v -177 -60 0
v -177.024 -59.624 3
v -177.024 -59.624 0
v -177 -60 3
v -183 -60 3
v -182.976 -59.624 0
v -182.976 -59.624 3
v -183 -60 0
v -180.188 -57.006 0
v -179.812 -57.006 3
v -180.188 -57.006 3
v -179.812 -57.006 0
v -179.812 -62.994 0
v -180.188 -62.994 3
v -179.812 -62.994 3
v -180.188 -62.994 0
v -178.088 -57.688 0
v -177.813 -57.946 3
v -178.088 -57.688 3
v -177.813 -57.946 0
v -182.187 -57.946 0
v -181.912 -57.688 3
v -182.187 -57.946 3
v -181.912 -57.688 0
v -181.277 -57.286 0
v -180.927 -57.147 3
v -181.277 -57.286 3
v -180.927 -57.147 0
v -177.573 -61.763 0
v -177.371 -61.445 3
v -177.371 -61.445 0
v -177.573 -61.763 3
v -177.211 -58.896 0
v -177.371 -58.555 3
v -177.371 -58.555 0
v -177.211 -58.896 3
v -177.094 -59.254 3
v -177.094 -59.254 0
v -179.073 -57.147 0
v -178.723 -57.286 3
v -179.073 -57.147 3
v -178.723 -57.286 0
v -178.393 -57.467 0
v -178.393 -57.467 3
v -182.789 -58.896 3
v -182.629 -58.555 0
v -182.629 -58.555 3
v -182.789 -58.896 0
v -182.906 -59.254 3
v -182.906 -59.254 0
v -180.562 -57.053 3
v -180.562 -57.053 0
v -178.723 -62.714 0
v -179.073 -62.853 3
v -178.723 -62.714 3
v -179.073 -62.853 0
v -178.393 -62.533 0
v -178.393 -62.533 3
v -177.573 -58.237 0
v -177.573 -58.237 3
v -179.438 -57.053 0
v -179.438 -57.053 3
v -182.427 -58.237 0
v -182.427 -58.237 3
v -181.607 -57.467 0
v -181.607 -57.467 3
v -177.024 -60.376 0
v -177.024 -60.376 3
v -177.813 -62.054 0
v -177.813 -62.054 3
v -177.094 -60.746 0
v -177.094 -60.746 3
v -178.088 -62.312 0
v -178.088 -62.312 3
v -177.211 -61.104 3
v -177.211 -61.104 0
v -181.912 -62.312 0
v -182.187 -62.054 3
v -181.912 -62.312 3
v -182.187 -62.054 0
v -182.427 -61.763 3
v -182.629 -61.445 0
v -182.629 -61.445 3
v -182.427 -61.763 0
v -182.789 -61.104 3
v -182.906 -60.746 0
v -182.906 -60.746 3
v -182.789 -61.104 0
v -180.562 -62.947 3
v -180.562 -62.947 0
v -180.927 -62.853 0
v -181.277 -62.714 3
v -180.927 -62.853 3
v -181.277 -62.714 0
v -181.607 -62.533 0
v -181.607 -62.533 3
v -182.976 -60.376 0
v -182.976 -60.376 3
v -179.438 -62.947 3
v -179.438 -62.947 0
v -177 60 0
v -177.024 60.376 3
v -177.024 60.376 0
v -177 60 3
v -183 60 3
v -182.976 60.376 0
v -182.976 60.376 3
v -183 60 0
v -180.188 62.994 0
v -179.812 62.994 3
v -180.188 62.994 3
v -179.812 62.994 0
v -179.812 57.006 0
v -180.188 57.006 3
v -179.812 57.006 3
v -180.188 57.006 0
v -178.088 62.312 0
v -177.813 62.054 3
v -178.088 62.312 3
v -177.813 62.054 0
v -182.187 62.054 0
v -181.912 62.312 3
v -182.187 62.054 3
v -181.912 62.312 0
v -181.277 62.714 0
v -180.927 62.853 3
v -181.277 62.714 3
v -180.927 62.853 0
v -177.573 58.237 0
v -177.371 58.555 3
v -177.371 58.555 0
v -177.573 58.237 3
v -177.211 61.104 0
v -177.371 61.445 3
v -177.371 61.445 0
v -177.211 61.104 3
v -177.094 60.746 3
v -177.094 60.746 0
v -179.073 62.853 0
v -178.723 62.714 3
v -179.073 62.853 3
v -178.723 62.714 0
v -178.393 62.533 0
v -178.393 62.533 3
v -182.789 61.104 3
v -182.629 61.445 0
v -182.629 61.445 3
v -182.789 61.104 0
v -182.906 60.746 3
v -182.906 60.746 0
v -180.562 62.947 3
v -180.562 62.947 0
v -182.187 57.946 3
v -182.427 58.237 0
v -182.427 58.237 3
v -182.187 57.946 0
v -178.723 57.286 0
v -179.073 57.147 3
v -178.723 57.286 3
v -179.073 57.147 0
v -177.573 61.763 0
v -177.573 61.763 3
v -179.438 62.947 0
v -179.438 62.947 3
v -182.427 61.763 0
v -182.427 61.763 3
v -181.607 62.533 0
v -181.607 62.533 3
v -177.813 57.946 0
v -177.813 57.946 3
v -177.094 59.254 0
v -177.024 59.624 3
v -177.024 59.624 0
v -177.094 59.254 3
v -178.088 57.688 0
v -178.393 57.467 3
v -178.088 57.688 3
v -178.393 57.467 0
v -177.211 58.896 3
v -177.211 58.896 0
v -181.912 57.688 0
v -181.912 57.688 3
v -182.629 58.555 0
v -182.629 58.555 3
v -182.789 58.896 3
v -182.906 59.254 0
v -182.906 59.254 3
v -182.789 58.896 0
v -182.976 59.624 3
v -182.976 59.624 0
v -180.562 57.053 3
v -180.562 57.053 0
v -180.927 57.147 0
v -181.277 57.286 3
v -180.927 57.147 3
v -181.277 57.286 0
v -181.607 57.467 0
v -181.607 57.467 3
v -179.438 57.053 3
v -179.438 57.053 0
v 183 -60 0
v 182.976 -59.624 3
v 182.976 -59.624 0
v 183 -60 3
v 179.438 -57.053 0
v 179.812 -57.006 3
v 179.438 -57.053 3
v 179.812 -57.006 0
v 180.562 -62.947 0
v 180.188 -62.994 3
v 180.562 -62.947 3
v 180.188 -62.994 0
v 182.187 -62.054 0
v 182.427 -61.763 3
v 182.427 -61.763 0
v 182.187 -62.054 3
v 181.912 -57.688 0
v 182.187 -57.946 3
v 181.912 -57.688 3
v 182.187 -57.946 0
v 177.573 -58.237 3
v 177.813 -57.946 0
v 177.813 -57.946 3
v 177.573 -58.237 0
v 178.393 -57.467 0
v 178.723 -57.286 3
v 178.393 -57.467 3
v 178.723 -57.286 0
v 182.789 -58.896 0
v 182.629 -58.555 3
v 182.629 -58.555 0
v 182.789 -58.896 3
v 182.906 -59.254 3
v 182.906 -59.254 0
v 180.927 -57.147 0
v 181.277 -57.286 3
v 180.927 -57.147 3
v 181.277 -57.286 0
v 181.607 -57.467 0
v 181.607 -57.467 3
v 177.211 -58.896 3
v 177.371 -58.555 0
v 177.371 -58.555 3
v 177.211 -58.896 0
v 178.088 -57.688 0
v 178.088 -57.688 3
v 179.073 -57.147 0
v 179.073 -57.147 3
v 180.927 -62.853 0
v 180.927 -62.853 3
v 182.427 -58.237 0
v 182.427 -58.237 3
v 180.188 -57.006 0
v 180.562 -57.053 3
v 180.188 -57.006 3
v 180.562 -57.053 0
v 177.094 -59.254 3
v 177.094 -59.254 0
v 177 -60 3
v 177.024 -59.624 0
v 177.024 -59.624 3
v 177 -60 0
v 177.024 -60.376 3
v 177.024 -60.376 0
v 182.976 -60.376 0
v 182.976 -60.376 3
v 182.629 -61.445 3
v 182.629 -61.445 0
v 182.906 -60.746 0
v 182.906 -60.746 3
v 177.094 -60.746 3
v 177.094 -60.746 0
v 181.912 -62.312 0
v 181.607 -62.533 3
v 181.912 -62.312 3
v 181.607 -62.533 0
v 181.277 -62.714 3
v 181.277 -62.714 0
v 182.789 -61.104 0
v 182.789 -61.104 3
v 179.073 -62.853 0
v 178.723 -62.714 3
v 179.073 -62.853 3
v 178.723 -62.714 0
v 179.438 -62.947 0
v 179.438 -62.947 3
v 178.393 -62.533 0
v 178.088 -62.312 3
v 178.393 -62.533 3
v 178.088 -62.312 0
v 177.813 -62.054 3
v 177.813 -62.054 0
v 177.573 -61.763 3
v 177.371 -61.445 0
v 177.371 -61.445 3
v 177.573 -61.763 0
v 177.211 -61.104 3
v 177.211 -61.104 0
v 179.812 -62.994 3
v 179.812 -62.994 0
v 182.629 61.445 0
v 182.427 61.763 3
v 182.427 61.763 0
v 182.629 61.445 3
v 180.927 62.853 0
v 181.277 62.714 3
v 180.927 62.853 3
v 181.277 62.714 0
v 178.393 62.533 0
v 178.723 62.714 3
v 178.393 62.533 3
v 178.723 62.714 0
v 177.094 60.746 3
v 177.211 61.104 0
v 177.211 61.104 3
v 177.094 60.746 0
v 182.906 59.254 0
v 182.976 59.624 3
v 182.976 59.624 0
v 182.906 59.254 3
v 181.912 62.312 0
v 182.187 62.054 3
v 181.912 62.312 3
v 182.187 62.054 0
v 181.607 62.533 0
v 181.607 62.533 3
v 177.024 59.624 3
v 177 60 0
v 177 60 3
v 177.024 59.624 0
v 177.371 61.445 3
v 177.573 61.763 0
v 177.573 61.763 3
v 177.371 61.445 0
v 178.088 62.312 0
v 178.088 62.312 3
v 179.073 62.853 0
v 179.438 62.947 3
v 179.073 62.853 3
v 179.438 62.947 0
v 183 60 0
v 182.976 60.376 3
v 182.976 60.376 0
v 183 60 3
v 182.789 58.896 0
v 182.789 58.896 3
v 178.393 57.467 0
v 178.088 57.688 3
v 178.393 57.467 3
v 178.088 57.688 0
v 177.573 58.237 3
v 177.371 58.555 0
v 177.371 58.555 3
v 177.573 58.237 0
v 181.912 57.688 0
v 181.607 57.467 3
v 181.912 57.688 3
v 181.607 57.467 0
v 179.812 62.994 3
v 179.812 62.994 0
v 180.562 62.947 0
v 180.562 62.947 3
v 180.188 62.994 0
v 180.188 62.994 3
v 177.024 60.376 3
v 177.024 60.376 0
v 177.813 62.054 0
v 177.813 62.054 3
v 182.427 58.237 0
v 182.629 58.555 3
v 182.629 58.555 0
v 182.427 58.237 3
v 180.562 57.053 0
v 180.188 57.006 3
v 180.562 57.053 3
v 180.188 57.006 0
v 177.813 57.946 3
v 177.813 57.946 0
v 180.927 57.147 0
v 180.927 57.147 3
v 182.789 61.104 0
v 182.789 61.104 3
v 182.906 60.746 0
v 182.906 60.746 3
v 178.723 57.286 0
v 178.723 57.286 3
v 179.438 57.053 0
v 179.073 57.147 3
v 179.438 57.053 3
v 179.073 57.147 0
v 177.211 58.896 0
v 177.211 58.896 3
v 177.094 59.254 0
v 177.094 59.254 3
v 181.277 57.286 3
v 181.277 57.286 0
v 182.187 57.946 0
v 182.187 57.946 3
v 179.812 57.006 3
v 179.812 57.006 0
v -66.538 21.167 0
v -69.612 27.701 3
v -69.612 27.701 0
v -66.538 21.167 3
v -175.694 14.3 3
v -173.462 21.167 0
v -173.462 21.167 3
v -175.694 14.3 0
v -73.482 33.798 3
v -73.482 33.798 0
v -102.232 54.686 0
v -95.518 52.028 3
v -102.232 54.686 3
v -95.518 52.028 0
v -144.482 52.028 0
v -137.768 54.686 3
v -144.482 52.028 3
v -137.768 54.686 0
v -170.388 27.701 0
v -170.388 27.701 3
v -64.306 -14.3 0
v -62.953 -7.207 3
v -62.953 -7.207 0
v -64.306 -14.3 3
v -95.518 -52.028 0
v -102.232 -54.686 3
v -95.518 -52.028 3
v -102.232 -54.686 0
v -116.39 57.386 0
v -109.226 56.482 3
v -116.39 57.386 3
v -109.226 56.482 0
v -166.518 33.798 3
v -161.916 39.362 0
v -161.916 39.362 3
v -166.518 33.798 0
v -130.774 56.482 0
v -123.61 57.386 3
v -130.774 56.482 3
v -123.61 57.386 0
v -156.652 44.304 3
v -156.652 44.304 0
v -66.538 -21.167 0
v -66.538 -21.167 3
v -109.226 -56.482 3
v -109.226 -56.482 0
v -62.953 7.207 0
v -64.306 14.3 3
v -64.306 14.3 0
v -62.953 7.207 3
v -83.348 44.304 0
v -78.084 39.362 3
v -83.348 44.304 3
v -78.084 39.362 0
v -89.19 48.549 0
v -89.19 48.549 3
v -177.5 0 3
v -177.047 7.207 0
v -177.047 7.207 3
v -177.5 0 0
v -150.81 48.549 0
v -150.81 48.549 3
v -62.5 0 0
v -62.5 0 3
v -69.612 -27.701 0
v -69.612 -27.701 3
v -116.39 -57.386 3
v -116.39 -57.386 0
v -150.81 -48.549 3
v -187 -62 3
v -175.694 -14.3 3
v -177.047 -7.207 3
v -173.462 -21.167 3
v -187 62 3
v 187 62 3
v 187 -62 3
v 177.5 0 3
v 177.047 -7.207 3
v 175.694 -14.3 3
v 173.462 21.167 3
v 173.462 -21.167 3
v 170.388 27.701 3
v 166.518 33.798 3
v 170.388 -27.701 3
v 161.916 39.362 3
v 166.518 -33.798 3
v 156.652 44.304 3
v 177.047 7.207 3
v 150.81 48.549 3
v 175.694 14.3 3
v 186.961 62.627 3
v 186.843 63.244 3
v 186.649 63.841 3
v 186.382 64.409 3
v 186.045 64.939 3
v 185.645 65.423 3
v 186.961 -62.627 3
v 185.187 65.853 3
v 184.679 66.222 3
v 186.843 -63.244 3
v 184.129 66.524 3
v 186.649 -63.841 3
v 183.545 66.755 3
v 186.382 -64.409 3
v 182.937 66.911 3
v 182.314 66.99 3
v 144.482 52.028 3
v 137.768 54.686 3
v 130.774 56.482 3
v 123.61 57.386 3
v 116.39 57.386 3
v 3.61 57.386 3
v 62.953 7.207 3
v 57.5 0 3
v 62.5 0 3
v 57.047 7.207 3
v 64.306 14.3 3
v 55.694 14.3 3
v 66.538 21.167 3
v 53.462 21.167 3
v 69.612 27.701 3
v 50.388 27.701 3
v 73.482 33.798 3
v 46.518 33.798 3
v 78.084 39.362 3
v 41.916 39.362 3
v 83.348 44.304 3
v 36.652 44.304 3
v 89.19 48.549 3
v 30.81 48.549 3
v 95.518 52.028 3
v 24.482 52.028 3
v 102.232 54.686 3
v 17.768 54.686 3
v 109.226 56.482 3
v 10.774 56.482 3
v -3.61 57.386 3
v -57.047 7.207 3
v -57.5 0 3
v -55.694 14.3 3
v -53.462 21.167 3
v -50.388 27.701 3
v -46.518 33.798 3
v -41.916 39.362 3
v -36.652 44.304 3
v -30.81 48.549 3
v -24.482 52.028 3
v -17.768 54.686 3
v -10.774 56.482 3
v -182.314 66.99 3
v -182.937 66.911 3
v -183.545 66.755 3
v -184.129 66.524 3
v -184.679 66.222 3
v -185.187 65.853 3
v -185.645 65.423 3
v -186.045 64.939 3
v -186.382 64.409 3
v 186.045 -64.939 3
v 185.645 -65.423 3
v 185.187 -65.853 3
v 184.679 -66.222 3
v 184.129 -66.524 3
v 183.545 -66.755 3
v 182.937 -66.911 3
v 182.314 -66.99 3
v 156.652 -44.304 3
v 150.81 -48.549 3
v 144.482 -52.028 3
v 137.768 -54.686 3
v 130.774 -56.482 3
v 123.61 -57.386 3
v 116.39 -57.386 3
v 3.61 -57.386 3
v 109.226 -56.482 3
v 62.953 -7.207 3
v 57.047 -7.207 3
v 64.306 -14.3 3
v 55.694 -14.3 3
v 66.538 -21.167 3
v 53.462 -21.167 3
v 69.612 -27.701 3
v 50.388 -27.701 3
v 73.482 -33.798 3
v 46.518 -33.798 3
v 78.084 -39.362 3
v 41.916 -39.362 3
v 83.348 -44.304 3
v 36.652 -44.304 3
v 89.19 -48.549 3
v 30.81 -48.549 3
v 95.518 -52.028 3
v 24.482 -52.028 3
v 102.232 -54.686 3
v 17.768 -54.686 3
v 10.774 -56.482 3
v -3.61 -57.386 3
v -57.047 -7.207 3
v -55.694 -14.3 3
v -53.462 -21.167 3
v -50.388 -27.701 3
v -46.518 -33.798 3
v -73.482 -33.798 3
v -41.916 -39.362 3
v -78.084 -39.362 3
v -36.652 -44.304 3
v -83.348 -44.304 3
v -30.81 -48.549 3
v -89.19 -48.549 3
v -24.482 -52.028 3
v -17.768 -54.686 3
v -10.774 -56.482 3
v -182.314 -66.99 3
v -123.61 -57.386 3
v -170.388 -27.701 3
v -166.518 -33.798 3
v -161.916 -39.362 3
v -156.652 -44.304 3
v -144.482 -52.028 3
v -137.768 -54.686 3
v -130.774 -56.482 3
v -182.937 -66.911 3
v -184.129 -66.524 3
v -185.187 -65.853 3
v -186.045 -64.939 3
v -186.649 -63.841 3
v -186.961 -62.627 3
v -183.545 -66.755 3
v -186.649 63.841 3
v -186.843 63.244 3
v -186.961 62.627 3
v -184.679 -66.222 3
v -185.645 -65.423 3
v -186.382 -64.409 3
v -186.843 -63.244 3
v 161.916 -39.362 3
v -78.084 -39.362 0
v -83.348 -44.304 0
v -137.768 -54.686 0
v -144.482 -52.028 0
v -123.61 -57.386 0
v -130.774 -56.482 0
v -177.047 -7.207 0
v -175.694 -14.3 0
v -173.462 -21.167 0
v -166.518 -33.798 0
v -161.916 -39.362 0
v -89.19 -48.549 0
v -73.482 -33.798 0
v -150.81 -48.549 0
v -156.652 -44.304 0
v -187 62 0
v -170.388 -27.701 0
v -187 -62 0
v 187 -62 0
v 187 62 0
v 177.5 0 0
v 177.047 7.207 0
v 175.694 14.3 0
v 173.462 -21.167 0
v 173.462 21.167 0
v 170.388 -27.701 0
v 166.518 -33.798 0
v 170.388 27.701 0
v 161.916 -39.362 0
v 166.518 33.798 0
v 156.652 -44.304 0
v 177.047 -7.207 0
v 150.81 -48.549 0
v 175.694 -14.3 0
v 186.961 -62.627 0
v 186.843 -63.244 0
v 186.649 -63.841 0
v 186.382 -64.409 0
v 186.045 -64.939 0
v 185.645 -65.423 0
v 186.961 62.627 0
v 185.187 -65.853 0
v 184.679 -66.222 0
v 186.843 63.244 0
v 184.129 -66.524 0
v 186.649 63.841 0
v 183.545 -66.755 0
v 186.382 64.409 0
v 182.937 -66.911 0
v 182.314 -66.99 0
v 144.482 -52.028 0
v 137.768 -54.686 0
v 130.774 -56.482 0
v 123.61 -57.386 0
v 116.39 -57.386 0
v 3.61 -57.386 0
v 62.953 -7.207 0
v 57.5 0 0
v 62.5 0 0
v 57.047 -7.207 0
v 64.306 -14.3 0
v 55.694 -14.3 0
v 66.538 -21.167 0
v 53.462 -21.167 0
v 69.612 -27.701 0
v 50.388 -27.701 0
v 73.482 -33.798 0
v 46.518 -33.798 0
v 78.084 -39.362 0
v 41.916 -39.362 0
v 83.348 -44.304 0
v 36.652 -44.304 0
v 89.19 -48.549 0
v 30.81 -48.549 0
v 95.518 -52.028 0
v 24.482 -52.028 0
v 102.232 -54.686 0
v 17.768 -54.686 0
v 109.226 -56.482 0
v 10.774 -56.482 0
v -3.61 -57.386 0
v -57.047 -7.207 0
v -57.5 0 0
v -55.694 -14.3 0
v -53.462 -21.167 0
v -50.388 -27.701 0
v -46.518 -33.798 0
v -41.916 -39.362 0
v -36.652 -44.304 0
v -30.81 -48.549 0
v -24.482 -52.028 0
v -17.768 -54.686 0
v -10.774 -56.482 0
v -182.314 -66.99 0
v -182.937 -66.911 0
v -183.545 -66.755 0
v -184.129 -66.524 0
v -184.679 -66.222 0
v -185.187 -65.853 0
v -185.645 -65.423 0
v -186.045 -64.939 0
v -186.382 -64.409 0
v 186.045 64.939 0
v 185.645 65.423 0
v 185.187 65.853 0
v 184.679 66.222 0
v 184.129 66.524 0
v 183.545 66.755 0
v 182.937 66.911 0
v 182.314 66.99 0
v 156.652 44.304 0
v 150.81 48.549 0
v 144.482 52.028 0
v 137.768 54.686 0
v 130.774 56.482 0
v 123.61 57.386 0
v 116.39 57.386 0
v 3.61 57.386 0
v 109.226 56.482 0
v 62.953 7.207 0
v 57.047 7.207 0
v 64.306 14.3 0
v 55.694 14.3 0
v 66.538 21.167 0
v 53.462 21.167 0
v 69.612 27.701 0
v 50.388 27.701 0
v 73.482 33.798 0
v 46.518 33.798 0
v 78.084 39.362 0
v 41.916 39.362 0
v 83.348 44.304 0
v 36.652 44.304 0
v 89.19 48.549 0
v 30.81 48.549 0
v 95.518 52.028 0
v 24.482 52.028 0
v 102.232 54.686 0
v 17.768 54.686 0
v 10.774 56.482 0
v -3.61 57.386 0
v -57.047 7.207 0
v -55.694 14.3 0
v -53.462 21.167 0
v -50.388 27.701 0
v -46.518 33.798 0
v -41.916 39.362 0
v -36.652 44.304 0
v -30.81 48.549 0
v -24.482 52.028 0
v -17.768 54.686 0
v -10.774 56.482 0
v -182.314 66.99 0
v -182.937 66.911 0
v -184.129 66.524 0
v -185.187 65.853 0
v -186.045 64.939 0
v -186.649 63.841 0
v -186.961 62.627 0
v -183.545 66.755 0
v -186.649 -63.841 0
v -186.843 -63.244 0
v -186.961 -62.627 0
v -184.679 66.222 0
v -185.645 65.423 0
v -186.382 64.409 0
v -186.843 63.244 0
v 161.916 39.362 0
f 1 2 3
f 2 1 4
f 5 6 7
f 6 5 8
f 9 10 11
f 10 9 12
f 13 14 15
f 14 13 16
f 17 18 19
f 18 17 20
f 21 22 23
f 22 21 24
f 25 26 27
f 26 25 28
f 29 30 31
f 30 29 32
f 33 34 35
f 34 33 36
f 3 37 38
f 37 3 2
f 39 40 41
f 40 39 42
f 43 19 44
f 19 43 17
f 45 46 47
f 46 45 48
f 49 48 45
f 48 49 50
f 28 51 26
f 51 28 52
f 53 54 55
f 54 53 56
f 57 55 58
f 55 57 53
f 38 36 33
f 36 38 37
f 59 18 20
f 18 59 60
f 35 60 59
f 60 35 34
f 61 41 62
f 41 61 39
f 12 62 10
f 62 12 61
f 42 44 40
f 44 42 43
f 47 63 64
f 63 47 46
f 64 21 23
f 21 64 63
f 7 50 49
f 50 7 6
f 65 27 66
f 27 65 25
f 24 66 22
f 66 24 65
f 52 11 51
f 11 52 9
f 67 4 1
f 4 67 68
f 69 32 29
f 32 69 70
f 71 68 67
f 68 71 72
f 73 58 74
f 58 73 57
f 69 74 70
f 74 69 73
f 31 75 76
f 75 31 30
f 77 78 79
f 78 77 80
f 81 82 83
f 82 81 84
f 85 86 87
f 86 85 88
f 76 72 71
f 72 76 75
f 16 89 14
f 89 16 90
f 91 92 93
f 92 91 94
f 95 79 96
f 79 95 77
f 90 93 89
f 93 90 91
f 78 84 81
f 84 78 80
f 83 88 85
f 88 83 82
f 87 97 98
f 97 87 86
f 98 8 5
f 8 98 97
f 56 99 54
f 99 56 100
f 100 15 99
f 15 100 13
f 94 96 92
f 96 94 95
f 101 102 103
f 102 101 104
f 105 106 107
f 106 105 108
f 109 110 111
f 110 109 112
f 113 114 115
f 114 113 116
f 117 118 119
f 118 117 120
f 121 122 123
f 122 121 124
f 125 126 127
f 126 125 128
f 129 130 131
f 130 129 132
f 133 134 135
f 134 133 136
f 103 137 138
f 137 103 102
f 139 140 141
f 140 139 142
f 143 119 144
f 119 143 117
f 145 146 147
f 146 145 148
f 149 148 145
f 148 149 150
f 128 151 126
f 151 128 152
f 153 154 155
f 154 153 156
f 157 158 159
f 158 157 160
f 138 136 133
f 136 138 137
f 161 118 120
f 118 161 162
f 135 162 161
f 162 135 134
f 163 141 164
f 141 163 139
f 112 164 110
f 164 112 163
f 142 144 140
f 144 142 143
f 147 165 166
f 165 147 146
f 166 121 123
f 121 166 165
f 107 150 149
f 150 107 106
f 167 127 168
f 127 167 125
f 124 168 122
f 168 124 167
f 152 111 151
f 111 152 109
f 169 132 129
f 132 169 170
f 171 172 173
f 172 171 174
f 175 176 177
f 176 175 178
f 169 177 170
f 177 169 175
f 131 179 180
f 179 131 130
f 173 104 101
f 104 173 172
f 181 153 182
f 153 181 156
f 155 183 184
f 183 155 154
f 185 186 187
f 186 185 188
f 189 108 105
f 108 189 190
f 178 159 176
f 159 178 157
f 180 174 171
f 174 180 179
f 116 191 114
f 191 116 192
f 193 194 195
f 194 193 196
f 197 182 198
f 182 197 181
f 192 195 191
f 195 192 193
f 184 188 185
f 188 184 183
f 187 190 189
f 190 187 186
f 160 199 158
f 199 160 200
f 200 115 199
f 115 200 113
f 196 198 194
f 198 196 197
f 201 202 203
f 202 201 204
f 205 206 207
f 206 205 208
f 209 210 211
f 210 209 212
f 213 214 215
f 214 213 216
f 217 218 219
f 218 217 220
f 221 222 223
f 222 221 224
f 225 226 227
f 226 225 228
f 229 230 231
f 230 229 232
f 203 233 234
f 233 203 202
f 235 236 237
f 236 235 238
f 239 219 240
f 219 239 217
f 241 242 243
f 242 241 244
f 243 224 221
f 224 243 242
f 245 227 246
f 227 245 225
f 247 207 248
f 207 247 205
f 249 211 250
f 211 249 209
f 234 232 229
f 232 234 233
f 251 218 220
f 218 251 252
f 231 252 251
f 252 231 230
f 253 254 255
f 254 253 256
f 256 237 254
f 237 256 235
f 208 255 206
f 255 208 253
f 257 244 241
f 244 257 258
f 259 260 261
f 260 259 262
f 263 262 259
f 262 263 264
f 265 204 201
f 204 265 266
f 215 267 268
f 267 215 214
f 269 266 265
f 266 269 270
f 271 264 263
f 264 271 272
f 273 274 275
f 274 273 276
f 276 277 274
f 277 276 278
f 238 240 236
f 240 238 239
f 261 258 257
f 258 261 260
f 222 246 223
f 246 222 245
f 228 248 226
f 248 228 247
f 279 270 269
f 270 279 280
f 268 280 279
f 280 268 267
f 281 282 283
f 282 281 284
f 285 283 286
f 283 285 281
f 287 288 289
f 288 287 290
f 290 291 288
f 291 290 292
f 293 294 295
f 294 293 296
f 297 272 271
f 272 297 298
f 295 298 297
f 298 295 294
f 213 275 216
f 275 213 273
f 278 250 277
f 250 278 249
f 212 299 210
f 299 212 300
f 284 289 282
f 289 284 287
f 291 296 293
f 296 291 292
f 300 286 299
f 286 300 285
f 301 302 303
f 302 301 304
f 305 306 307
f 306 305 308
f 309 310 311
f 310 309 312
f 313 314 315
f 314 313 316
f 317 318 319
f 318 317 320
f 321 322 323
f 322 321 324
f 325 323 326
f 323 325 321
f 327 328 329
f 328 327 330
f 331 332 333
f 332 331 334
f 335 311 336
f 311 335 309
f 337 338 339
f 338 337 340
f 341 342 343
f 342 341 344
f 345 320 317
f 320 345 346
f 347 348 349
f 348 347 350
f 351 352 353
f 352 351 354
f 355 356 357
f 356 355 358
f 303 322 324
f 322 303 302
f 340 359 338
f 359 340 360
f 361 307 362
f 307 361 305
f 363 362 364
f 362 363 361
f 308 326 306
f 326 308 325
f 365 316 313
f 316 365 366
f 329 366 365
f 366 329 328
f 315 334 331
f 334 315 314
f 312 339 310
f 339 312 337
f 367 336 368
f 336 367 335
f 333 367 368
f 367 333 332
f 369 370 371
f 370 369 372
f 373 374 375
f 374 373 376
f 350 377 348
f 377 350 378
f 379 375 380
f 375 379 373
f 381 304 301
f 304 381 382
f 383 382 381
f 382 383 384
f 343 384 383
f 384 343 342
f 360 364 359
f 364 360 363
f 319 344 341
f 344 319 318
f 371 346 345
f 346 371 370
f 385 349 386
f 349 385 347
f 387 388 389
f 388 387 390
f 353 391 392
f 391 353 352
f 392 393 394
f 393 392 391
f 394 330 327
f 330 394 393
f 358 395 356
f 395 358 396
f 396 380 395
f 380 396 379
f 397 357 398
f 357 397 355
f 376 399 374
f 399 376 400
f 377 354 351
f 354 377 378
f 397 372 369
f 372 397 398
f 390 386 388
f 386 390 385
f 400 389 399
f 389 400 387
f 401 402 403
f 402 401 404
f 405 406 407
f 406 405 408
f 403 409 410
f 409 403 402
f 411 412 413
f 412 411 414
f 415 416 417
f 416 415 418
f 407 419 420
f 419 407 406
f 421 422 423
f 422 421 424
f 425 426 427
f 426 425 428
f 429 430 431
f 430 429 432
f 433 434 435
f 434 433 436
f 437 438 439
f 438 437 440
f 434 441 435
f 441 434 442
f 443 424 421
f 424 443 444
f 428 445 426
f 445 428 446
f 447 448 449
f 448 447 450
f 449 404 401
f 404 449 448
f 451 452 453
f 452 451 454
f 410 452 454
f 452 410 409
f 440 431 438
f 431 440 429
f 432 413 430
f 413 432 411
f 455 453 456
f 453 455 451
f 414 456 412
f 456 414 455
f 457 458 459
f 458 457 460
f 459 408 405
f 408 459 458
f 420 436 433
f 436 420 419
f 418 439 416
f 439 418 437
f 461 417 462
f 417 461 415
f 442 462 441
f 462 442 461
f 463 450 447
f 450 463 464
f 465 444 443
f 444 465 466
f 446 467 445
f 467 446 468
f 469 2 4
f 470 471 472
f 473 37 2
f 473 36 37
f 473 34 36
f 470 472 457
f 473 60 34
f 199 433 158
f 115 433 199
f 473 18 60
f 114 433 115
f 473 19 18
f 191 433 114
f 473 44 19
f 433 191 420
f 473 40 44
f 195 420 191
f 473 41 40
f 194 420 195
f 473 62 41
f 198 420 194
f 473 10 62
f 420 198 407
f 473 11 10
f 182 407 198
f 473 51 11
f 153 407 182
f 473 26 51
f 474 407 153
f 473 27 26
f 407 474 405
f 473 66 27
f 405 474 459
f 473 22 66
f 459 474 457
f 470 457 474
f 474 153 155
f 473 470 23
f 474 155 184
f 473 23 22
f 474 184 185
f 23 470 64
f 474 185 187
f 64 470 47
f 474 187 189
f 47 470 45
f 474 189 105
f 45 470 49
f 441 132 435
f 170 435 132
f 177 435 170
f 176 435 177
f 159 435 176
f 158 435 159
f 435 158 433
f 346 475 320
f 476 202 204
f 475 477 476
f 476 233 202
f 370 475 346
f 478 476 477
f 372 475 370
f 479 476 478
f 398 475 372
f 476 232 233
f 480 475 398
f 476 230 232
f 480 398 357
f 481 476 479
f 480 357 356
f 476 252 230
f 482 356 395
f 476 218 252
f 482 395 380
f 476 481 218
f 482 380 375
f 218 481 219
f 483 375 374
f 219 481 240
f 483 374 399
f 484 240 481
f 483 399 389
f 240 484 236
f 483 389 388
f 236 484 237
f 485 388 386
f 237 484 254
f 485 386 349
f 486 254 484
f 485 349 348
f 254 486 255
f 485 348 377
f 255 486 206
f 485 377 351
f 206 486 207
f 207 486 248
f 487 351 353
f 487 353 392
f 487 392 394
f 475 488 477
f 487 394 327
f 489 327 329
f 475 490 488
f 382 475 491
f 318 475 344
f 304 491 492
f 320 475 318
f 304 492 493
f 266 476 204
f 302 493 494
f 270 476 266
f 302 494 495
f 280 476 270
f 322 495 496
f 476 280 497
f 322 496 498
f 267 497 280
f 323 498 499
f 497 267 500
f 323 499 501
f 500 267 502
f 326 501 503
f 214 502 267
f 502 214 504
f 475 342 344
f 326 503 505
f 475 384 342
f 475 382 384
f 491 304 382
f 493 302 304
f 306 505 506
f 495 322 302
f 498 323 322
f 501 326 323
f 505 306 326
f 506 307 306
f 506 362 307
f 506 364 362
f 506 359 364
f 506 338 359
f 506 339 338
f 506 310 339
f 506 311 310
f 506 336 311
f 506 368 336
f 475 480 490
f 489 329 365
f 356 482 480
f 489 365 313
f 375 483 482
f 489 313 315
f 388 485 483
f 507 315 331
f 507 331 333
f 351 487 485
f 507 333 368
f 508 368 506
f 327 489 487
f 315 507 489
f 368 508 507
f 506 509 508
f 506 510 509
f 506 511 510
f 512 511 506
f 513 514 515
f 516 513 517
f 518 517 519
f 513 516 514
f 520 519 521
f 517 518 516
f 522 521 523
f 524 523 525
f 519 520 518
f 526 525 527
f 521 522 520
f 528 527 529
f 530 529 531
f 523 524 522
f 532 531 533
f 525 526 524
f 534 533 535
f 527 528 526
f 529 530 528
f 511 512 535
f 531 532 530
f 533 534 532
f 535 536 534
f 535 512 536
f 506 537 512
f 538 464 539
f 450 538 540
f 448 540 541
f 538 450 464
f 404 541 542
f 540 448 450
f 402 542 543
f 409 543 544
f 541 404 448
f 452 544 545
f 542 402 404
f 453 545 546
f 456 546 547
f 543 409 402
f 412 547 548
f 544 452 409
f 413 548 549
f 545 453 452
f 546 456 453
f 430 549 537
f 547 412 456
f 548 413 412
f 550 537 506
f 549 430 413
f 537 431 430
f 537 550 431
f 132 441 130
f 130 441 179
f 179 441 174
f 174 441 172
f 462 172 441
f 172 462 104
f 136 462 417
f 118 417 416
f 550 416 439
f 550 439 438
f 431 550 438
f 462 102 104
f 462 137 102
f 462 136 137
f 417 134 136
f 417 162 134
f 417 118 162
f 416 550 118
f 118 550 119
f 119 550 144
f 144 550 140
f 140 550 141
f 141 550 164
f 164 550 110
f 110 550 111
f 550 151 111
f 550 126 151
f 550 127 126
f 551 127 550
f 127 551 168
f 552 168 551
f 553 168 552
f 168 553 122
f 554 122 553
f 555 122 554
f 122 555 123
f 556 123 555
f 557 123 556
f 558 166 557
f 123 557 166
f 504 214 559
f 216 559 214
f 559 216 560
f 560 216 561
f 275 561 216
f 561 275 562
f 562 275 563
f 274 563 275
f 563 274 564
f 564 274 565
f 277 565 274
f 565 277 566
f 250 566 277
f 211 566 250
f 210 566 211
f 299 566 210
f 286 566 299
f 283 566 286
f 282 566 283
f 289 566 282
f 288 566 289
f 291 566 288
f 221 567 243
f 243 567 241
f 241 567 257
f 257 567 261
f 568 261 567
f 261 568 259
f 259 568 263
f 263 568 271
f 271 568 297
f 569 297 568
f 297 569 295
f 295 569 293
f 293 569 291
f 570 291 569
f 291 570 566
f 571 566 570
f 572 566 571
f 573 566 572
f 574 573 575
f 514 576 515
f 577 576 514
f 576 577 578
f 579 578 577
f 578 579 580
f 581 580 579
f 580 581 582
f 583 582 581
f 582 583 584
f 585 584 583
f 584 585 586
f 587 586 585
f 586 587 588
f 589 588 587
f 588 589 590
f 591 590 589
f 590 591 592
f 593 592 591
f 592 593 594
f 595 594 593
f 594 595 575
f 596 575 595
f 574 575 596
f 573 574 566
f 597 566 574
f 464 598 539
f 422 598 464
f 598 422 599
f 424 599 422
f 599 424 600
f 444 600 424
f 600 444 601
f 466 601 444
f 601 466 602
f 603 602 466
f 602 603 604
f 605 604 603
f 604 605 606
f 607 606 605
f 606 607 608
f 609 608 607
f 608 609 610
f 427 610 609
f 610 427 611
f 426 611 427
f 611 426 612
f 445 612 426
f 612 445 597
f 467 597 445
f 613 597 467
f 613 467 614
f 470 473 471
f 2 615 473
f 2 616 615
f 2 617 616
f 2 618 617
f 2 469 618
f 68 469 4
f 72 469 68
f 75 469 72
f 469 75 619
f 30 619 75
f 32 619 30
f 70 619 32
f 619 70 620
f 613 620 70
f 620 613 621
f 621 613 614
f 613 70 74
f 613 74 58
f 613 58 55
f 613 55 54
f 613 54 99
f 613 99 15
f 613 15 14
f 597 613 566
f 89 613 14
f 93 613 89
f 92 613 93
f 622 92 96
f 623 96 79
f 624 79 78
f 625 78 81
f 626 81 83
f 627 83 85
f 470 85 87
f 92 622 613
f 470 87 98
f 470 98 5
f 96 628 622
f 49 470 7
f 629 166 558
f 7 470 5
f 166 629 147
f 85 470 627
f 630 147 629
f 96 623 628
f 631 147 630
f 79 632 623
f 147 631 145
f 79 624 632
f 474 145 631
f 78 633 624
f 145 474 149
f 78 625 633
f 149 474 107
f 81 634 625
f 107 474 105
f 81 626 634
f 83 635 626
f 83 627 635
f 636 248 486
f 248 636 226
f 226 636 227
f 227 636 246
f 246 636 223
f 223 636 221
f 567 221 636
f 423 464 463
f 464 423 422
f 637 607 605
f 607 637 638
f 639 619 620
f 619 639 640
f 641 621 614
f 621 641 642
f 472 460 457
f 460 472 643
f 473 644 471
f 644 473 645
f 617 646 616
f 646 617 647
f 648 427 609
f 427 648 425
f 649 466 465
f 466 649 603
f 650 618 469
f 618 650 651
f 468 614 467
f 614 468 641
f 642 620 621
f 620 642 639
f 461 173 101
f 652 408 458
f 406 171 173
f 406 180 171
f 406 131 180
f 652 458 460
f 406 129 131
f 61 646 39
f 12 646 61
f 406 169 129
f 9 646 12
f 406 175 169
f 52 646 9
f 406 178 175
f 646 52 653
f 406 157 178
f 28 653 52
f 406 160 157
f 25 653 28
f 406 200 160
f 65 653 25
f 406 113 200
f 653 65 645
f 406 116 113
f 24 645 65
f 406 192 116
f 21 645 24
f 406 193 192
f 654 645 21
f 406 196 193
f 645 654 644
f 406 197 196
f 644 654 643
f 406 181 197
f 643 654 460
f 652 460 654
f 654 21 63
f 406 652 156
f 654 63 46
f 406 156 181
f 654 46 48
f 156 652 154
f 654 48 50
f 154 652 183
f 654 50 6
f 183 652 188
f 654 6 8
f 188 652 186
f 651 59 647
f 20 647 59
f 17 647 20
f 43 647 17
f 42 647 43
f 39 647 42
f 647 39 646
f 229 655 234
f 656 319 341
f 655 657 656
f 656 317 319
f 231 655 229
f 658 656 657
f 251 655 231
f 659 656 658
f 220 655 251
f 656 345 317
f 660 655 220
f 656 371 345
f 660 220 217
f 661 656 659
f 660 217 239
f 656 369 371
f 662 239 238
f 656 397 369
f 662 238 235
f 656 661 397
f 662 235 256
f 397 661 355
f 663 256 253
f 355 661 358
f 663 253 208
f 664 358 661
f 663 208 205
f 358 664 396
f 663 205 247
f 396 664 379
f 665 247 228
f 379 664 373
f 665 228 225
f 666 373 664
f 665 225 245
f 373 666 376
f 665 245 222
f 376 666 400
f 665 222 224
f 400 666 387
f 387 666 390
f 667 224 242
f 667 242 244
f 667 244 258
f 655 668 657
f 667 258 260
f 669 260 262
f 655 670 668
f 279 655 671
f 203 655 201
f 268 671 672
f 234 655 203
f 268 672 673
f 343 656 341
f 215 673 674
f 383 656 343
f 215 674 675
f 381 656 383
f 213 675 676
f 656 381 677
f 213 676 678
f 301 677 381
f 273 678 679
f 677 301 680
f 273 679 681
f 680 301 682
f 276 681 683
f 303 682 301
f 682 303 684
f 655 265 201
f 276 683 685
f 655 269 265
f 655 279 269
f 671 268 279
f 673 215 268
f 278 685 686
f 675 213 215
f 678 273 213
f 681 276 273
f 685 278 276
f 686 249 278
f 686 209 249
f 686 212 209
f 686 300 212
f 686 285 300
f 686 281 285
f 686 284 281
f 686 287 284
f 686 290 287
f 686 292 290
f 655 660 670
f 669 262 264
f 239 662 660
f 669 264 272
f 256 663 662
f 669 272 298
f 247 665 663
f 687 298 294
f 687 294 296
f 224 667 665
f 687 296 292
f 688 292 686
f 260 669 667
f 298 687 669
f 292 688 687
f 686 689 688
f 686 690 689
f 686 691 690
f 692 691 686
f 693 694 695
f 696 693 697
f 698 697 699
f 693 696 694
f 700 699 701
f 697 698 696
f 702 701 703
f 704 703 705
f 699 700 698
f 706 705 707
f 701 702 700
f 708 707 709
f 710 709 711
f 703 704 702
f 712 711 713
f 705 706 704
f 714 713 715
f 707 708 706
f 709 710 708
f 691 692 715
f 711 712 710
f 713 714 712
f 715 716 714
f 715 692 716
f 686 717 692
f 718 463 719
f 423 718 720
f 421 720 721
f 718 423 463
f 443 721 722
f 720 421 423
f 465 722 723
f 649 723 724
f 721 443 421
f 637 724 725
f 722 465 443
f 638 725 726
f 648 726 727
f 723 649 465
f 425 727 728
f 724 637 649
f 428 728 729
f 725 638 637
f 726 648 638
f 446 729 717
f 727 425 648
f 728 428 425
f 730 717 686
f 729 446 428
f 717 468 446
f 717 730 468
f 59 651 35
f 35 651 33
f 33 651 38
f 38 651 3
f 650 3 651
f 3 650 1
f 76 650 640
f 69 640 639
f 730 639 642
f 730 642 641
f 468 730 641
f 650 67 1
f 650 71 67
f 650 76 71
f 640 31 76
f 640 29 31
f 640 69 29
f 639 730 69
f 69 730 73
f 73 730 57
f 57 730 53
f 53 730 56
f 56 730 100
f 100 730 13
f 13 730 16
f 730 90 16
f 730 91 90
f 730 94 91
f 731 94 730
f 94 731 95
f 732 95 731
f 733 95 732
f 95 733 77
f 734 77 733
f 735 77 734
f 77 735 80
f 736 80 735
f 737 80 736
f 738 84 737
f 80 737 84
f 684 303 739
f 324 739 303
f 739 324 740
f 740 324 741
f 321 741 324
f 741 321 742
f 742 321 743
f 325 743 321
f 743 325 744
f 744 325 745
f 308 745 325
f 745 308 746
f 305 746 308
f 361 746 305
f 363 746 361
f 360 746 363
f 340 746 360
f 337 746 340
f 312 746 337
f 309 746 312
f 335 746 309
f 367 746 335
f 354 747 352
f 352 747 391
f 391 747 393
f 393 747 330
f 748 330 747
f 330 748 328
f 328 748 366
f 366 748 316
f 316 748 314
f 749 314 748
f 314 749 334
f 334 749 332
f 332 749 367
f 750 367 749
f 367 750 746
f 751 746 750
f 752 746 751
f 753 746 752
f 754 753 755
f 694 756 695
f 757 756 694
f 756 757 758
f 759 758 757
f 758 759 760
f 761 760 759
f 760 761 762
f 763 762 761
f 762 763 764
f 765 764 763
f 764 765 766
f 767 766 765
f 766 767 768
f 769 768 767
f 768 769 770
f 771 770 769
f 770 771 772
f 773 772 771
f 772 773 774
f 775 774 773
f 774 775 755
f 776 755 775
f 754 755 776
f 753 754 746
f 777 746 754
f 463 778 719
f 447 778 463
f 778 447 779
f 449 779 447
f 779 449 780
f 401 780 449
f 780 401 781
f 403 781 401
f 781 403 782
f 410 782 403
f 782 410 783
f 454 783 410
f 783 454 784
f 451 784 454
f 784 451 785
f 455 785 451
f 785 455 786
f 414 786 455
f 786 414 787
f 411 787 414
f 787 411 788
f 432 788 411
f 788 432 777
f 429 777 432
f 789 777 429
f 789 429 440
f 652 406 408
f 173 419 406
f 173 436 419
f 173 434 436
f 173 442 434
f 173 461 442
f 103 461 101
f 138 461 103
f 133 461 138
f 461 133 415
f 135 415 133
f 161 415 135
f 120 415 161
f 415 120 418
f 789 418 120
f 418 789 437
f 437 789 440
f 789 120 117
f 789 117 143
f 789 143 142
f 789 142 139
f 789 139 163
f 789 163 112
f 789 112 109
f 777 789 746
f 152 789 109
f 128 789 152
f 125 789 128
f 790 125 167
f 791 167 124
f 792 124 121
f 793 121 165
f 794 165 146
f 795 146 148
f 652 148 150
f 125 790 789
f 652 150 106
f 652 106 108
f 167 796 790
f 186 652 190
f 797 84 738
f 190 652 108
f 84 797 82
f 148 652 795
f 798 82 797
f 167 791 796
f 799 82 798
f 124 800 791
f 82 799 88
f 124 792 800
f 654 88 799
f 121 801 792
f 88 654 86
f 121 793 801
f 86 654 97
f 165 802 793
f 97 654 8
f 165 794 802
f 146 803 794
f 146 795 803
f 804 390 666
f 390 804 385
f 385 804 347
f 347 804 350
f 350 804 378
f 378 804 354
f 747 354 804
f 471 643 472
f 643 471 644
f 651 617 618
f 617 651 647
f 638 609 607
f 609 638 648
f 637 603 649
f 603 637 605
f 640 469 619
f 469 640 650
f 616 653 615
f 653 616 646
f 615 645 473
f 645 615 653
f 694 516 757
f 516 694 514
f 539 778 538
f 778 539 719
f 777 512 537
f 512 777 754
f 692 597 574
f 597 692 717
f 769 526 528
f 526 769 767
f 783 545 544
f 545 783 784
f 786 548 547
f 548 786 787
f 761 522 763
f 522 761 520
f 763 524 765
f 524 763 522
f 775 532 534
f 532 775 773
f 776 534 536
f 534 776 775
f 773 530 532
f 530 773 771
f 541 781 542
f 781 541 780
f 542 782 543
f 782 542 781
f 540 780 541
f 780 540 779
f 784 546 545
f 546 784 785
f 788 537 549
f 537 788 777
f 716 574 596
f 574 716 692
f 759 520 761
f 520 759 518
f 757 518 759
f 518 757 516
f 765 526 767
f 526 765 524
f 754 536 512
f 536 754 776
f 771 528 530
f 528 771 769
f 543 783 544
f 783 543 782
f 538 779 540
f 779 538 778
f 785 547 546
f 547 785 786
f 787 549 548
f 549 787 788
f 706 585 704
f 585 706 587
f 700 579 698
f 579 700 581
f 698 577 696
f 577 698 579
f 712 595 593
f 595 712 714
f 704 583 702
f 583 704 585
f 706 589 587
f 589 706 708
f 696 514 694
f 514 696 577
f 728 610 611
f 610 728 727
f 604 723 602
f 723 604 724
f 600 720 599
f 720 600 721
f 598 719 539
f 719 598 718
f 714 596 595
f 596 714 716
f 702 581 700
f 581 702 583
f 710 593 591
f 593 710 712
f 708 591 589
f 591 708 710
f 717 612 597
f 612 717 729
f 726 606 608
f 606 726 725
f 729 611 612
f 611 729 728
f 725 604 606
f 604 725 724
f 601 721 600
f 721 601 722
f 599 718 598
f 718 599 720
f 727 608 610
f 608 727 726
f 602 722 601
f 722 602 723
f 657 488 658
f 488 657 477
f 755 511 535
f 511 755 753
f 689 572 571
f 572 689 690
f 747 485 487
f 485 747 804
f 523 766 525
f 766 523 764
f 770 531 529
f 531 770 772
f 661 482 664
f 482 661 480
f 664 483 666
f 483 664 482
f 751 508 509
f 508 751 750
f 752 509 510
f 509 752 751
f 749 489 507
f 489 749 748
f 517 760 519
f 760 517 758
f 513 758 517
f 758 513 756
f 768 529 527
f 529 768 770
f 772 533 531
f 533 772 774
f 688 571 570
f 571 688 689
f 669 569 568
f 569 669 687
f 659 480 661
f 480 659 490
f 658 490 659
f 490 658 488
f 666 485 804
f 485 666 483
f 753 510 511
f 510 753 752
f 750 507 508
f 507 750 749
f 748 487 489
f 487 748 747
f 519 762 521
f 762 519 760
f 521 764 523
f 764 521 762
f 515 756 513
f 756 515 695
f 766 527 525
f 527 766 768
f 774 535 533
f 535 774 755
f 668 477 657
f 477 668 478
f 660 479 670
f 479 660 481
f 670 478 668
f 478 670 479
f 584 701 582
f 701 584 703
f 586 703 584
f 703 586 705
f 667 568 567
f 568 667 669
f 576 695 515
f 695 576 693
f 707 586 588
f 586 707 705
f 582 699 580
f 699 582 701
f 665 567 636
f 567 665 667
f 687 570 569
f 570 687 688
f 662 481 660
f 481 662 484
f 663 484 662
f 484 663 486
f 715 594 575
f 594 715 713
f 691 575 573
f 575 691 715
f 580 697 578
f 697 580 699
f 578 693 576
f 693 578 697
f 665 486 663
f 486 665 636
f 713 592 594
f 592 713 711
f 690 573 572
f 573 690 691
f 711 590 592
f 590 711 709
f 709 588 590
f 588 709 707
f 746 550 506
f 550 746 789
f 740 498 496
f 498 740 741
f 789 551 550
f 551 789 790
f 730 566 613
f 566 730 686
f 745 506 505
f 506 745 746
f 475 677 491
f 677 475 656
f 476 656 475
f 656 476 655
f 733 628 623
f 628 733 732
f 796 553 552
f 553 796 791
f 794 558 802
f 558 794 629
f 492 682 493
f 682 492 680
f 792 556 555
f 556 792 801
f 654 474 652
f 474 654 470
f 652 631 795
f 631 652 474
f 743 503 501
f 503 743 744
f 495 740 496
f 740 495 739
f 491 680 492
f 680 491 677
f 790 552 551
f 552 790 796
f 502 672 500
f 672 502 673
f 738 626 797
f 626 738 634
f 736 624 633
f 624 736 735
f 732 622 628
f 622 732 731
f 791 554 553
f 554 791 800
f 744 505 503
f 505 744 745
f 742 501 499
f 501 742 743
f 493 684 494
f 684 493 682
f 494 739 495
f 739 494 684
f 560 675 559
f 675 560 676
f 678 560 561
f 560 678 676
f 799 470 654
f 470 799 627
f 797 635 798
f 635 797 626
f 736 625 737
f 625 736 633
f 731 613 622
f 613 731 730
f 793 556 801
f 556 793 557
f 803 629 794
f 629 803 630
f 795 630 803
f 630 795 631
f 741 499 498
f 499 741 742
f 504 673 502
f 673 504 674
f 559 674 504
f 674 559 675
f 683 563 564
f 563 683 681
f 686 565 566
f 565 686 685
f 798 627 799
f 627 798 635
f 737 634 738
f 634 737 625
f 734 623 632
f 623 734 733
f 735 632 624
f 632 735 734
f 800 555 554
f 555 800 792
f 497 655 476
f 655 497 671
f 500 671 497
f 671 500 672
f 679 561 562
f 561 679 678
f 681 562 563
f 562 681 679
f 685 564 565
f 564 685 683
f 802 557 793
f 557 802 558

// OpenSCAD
$fn = 50;


difference() {
	union() {
		hull() {
			translate(v = [-182.0000000000, 62.0000000000, 0]) {
				cylinder(h = 3, r = 5);
			}
			translate(v = [182.0000000000, 62.0000000000, 0]) {
				cylinder(h = 3, r = 5);
			}
			translate(v = [-182.0000000000, -62.0000000000, 0]) {
				cylinder(h = 3, r = 5);
			}
			translate(v = [182.0000000000, -62.0000000000, 0]) {
				cylinder(h = 3, r = 5);
			}
		}
	}
	union() {
		#translate(v = [-180.0000000000, -60.0000000000, -100.0000000000]) {
			cylinder(h = 200, r = 3.0000000000);
		}
		#translate(v = [-180.0000000000, 60.0000000000, -100.0000000000]) {
			cylinder(h = 200, r = 3.0000000000);
		}
		#translate(v = [180.0000000000, -60.0000000000, -100.0000000000]) {
			cylinder(h = 200, r = 3.0000000000);
		}
		#translate(v = [180.0000000000, 60.0000000000, -100.0000000000]) {
			cylinder(h = 200, r = 3.0000000000);
		}
		#translate(v = [-120.0000000000, 0, 0]) {
			cylinder(h = 3, r = 57.5000000000);
		}
		#cylinder(h = 3, r = 57.5000000000);
		#translate(v = [120.0000000000, 0, 0]) {
			cylinder(h = 3, r = 57.5000000000);
		}
	}
}
